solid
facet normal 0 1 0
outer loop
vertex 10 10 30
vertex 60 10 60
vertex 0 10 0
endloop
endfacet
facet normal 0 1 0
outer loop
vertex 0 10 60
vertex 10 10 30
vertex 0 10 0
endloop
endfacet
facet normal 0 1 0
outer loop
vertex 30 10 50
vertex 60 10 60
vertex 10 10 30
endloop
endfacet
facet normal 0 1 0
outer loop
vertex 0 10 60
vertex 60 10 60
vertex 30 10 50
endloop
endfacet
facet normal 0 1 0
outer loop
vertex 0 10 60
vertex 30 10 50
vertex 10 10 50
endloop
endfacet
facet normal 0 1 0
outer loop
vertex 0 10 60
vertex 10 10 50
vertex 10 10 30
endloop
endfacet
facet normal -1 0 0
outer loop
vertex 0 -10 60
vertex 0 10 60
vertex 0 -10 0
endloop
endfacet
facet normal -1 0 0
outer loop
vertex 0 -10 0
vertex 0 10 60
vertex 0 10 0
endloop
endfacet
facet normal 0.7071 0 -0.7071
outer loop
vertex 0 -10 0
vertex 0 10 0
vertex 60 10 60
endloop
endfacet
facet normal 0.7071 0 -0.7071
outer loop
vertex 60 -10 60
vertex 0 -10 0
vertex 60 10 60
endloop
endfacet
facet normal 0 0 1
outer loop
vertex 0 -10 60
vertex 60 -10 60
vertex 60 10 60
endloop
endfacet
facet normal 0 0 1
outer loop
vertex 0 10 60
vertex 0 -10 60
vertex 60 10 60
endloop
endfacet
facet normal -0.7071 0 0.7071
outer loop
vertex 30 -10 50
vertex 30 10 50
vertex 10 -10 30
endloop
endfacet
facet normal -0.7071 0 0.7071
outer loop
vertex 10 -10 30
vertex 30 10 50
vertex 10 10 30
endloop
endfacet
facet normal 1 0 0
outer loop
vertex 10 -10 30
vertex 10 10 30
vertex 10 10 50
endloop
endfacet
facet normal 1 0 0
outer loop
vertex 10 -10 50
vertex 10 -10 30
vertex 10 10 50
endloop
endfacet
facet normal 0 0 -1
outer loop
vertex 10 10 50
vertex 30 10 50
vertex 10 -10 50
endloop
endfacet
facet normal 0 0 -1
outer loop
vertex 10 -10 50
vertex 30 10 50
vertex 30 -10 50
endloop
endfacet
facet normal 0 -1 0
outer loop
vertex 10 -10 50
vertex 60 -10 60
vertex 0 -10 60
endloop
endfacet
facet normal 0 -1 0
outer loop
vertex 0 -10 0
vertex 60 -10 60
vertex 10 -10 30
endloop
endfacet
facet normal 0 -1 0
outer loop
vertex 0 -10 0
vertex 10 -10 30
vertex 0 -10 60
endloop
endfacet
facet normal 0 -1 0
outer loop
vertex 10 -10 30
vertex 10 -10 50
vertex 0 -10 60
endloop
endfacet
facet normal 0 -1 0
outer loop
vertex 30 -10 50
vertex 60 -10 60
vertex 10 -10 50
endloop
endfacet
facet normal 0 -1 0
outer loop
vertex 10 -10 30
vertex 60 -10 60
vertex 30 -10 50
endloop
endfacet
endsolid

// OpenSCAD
polyhedron
    (points = [
	       [0, -10, 60], [0, 10, 60], [0, 10, 0], [0, -10, 0], [60, -10, 60], [60, 10, 60], 
	       [10, -10, 50], [10, 10, 50], [10, 10, 30], [10, -10, 30], [30, -10, 50], [30, 10, 50]
	       ], 
     triangles = [
		  [0,3,2],  [0,2,1],  [4,0,5],  [5,0,1],  [5,2,4],  [4,2,3],
                  [6,8,9],  [6,7,8],  [6,10,11],[6,11,7], [10,8,11],
		  [10,9,8], [3,0,9],  [9,0,6],  [10,6, 0],[0,4,10],
                  [3,9,10], [3,10,4], [1,7,11], [1,11,5], [1,8,7],  
                  [2,8,1],  [8,2,11], [5,11,2]
		  ]
     );
